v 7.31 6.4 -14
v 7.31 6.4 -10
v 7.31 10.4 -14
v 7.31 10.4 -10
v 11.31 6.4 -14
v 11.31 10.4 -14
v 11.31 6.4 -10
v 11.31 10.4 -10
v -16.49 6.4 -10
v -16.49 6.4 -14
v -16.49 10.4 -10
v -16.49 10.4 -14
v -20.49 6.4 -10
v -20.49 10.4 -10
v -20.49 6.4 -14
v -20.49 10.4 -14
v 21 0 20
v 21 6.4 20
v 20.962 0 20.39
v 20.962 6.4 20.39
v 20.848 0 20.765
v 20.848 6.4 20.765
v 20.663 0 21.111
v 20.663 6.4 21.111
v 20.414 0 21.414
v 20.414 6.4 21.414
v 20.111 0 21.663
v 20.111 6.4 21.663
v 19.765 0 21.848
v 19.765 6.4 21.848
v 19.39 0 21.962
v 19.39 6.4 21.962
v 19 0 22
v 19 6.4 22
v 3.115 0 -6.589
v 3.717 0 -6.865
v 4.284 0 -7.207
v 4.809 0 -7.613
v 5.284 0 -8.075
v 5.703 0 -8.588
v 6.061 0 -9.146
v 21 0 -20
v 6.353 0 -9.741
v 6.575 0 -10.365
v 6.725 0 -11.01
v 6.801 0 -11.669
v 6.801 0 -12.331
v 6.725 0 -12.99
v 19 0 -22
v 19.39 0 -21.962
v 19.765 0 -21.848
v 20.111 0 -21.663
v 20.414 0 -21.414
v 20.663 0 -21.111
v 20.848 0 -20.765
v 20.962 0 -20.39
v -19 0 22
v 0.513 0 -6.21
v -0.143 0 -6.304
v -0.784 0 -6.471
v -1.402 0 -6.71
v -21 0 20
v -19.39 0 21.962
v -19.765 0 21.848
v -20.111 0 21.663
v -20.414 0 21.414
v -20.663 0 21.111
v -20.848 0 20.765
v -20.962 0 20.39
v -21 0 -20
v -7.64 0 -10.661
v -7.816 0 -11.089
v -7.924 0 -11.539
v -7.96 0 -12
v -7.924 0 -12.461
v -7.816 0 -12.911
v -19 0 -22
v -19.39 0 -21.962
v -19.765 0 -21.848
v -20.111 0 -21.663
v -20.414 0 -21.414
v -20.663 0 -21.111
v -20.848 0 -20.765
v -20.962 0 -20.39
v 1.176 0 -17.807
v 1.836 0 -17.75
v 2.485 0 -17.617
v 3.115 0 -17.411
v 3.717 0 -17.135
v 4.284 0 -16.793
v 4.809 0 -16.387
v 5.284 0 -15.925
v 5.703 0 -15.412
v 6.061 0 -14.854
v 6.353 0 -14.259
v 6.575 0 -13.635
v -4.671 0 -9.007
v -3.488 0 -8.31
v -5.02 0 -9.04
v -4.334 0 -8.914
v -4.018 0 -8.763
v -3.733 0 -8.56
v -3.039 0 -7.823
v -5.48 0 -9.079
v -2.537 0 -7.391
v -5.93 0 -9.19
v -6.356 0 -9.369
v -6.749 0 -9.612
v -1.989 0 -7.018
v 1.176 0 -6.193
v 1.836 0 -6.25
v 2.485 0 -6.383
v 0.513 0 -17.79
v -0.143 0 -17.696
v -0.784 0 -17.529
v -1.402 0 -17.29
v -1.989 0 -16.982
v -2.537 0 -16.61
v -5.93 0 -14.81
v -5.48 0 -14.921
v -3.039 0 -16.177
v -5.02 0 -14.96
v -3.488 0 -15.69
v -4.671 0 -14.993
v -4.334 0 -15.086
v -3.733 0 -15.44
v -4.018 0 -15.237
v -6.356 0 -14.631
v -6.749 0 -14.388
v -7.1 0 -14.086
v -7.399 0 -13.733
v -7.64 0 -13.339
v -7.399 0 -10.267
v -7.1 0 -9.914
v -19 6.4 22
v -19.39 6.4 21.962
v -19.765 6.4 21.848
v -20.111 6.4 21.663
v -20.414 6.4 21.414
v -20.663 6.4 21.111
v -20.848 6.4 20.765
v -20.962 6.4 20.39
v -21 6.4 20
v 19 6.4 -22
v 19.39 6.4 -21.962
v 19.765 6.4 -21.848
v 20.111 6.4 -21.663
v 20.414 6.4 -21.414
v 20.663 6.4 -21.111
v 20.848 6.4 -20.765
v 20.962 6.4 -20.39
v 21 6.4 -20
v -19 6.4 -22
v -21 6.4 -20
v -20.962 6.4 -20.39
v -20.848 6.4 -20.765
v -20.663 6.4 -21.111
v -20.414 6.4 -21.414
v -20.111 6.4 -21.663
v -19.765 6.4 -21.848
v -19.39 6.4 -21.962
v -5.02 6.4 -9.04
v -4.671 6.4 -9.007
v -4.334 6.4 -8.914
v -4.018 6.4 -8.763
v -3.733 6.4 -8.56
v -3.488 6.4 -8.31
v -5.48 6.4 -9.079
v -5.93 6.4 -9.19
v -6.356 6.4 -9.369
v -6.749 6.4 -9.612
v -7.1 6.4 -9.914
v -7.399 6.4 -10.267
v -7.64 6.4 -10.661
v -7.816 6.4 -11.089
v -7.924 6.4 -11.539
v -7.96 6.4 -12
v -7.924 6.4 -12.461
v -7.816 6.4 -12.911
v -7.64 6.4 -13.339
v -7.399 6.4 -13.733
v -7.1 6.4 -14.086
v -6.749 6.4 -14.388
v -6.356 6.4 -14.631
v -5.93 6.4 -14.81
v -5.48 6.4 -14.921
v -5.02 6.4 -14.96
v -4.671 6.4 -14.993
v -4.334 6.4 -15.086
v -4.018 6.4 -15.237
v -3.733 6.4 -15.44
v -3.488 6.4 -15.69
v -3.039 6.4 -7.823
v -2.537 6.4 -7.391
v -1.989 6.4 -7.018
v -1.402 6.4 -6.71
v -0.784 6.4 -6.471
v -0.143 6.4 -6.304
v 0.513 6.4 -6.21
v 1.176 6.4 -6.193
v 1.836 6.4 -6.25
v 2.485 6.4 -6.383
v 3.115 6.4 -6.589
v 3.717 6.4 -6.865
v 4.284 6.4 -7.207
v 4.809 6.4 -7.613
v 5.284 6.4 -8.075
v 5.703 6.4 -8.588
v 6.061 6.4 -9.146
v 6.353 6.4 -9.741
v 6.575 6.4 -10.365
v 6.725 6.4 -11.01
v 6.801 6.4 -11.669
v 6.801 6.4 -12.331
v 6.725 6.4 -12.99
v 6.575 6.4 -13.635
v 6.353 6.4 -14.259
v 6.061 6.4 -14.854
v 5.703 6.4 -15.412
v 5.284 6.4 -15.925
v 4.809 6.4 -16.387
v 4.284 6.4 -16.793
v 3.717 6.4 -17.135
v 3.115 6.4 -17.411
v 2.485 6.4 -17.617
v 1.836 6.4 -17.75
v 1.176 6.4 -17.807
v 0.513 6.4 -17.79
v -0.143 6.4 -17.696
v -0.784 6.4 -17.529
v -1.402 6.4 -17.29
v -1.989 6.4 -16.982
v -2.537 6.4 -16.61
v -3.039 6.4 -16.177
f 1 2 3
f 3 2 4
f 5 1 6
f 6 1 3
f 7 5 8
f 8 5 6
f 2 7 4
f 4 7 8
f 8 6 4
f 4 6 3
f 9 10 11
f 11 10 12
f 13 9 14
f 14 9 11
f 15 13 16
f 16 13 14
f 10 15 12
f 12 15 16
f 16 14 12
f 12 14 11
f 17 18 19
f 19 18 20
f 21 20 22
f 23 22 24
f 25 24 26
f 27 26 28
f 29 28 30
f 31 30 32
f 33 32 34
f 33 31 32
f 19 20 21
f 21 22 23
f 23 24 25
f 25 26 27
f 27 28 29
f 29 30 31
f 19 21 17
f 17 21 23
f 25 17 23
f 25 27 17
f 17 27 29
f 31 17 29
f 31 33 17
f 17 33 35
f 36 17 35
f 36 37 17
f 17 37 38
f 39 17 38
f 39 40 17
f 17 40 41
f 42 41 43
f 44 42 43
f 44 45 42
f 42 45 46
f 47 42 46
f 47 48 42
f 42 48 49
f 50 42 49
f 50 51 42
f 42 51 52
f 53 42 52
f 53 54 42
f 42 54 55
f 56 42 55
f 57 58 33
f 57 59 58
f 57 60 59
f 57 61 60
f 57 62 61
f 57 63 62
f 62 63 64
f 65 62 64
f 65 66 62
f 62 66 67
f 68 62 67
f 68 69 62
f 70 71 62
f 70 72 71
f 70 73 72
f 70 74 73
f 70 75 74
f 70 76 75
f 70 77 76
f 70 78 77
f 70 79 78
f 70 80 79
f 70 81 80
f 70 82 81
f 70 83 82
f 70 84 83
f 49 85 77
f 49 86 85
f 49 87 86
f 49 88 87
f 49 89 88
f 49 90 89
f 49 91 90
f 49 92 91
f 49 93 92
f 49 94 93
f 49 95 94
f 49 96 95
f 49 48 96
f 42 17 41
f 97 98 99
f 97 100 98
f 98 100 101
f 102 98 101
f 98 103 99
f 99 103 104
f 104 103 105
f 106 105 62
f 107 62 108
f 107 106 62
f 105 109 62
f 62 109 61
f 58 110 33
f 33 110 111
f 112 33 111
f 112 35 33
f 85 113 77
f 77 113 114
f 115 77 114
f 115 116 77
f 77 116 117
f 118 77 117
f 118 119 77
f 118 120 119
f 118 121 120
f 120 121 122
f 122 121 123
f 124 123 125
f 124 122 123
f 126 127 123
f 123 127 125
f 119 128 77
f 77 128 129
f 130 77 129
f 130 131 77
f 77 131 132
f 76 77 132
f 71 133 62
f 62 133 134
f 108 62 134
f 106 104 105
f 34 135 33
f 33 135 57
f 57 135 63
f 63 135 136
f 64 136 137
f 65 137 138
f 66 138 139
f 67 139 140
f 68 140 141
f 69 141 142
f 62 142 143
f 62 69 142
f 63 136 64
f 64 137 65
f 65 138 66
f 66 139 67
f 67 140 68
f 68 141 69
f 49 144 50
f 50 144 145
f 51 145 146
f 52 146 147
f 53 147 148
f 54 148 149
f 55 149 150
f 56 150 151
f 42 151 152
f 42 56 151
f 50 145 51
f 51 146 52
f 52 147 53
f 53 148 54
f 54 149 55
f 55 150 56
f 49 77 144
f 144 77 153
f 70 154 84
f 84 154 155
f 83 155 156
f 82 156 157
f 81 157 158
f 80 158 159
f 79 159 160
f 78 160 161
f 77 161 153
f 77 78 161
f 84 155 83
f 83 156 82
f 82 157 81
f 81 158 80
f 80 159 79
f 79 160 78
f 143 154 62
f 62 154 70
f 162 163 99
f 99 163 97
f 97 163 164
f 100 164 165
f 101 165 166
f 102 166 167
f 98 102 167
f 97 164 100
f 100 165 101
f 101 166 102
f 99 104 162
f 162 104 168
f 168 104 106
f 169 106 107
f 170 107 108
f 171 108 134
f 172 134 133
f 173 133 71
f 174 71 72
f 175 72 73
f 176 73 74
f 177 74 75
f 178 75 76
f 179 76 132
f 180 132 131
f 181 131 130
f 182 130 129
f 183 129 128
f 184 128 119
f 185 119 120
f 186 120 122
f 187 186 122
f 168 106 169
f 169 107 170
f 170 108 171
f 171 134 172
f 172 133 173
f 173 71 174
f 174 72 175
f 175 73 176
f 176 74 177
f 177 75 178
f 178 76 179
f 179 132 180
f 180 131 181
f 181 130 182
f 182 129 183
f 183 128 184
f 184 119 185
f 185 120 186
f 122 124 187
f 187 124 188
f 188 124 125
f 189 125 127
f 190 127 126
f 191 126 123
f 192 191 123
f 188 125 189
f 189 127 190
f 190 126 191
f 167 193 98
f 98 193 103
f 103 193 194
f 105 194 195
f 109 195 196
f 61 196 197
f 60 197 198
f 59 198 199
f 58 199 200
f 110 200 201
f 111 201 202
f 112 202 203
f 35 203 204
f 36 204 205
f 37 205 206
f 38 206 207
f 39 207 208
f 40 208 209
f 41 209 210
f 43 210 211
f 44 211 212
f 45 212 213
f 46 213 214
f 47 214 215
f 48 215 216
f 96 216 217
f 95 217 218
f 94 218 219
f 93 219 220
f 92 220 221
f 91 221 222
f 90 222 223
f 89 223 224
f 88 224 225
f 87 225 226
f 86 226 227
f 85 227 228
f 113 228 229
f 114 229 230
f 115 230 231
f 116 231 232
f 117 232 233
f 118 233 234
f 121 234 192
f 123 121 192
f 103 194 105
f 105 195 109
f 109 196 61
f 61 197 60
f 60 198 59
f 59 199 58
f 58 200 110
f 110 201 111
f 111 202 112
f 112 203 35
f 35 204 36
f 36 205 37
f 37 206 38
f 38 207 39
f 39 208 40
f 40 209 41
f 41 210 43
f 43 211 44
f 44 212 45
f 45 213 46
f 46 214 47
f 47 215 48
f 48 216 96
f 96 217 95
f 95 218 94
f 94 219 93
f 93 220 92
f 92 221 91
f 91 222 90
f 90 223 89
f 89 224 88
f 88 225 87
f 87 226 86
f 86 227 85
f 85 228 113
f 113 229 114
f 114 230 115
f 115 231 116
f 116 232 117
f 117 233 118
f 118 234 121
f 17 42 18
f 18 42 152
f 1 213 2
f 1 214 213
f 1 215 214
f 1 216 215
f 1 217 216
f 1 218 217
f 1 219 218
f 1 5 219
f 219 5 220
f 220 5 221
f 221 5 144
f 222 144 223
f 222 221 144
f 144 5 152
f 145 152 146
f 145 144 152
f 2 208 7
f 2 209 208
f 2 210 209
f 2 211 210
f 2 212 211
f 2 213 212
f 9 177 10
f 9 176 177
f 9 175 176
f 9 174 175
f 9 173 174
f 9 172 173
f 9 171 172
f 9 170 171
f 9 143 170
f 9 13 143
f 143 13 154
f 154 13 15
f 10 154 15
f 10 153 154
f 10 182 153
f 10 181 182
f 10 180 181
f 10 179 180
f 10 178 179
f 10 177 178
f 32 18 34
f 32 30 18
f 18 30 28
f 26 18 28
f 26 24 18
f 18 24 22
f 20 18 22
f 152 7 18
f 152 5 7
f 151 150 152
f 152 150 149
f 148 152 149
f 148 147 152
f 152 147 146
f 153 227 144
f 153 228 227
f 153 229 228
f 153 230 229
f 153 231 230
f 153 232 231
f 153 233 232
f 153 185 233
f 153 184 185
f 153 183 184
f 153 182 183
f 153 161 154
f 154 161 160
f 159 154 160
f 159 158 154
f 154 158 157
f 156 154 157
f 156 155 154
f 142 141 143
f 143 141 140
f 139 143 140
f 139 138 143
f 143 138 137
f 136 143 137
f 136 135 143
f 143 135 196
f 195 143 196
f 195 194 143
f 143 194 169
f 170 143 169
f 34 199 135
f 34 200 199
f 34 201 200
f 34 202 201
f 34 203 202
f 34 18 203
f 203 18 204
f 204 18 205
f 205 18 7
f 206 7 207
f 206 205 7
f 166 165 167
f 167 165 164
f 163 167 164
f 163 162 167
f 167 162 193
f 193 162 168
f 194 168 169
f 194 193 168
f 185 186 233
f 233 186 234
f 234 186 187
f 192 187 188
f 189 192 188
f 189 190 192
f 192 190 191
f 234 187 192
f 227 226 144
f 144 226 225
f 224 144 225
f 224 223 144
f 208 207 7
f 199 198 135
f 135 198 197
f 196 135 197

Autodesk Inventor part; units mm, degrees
ref_plane "YZ Plane" through (0, 0, 0) normal (1, 0, 0) x (0, 1, 0)
ref_plane "XZ Plane" through (0, 0, 0) normal (0, 1, 0) x (-1, 0, 0)
ref_plane "XY Plane" through (0, 0, 0) normal (0, 0, 1) x (1, 0, 0)
sketch "Sketch1" plane through (0, 0, 0) normal (0, 1, 0) x (-1, 0, 0)
  line L0 (-21, 22) -> (21, 22)
  line L1 (21, 22) -> (21, -22)
  line L2 (21, -22) -> (-21, -22)
  line L3 (-21, -22) -> (-21, 22)
  line L4 (-21, 22) -> (21, -22) construction
  line L5 (21, 22) -> (-21, -22) construction
  point P0 (0, 0)
  dimension "d0" = 42
  dimension "d1" = 44
extrude "wall2" add sketch "Sketch1" along normal blind 6.4
sketch "Sketch7" plane through (0, 6.4, 0) normal (0, 1, 0) x (1, 0, 0)
  line L0 (1, -22) -> (1, 22) construction
  line L1 (21, 22) -> (-21, 22) projected
  line L2 (-21, -22) -> (21, -22) projected
  line L3 (-21, 12) -> (21, 12) construction
  line L4 (21, -22) -> (21, 22) projected
  line L5 (-21, 22) -> (-21, -22) projected
  circle A0 centre (1, 12) radius 5.81
  point P0 (0, 0)
  dimension "d74" = 34
  dimension "d75" = 22
  dimension "d76" = 11.6
extrude "bigcircle" cut sketch "Sketch7" against normal blind 6.4 contours A0
sketch "Sketch8" plane through (0, 6.4, 0) normal (0, 1, 0) x (1, 0, 0)
  line L0 (-21, -22) -> (-21, 22) projected
  line L1 (-21, 12) -> (21, 12) construction
  line L2 (21, 22) -> (21, -22) projected
  line L3 (1, 22) -> (1, -22) construction
  line L4 (21, -22) -> (21, 22) projected
  line L5 (21, 22) -> (-21, 22) projected
  line L6 (-21, -22) -> (21, -22) projected
  circle A0 centre (-5, 12) radius 2.96
  point P0 (0, 0)
  dimension "d81" = 22
  dimension "d82" = 34
  dimension "d83" = 5.9
  dimension "d84" = 6
extrude "smallcircle" cut sketch "Sketch8" against normal blind 6.4 contours A0
fillet "Fillet4" radius 2 2 edges at (-4.0829, 3.2, -9.1857) (-4.0829, 3.2, -14.8143)
fillet_without_effect "Fillet5"
fillet "Fillet6" radius 2 1 edges at (-21, 3.2, -22)
fillet "Fillet7" radius 2 1 edges at (21, 3.2, -22)
fillet "Fillet8" radius 2 1 edges at (-21, 3.2, 22)
fillet "Fillet9" radius 2 1 edges at (21, 3.2, 22)
sketch "Sketch9" plane through (0, 6.4, 0) normal (0, 1, 0) x (1, 0, 0)
  line L0 (7.31, 17.1525) -> (7.31, -6.1616) construction
  line L1 (6.81, 14.2171) -> (6.81, 9.0836) construction
  arc A0 (-3.488, 8.3102) -> (-3.488, 15.6898) centre (1, 12) ccw projected
  line L2 (-21, 12) -> (14.6779, 12) construction
  line L3 (7.31, 10) -> (11.31, 10)
  line L4 (11.31, 10) -> (11.31, 14)
  line L5 (11.31, 14) -> (7.31, 14)
  line L6 (7.31, 14) -> (7.31, 10)
  line L7 (7.31, 10) -> (11.31, 14) construction
  line L8 (11.31, 10) -> (7.31, 14) construction
  line L9 (-21, 20) -> (-21, -20) projected
  line L10 (-20.49, 14) -> (-16.49, 14)
  line L11 (-16.49, 14) -> (-16.49, 10)
  line L12 (-16.49, 10) -> (-20.49, 10)
  line L13 (-20.49, 10) -> (-20.49, 14)
  line L14 (-20.49, 14) -> (-16.49, 10) construction
  line L15 (-16.49, 14) -> (-20.49, 10) construction
  point P0 (0, 0)
  point P1 (9.31, 12)
  point P2 (-18.49, 12)
  dimension "d93" = 0.5
  dimension "d94" = 4
  dimension "d95" = 23.3
extrude "Extrusion7" add sketch "Sketch9" along normal blind 4
equation "\"d0\" = wallw"
equation "\"d1\" = wallh"
equation "\"d72\" = wall2_thick"
equation "\"d74\" = distancefrombottom"
equation "\"d75\" = distancefromleft"
equation "\"d76\" = servobigcircledia"
equation "\"d79\" = wall2_thick"
equation "\"d81\" = distancefromleft"
equation "\"d82\" = distancefrombottom"
equation "\"d83\" = servosmallcircledia"
equation "\"d85\" = wall2_thick"
equation "\"d89\" = cornerrad"
equation "\"d90\" = cornerrad"
equation "\"d91\" = cornerrad"
equation "\"d92\" = cornerrad"
equation "\"d94\" = servomountsquare"
equation "\"d96\" = servomounth"
equation "\"printer3dtolerance\" = 0.1"
equation "\"wallw\" = 42"
equation "\"wallh\" = 44"
equation "\"cornerrad\" = 2"
equation "\"baseextra\" = 2"
equation "\"wall1_thick\" = 8"
equation "\"wall2_thick\" = 6.4"
equation "\"wall3_thick\" = 4"
equation "\"wall1slot\" = 8.1"
equation "\"wall2slot\" = 6.5"
equation "\"wall3slot\" = 4.1"
equation "\"gap2\" = 28"
equation "\"baseh\" = 79"
equation "\"basew\" = 44"
equation "\"base_thick\" = 6"
equation "\"base_slots_depth\" = 4"
equation "\"servomounth\" = 4"
equation "\"servosmallcircledia\" = 5.9"
equation "\"servomountsquare\" = 4"
equation "\"servobigcircledia\" = 11.6"
equation "\"servo9gw\" = 22.8"
equation "\"distancefromleft\" = 22"
equation "\"servopolygonl\" = 5.9"
equation "\"servopolygonr\" = 6.1"
equation "\"distancefrombottom\" = 34"
equation "\"d49\" = distancefrombottom"
equation "\"adapterh\" = 16"
equation "\"wall3slotd\" = 2"
equation "\"adapterw\" = 32"
equation "\"wall3slotd_1\" = 2"
equation "\"wall3slotw\" = 36"
equation "\"armslotd\" = 2"
equation "\"armthick\" = 3"
equation "\"armw\" = 34"
equation "\"fanhb\" = 11"
equation "\"fanhs\" = 9.6"
equation "\"adapterwallthick\" = 6"
equation "\"adapterwallslotd\" = 2"
equation "\"armhornthick\" = 3"
equation "\"hornscrewholed\" = 2"
equation "\"hornscrewheadd\" = 3"
equation "\"hornthick\" = 1.5"
properties part number "wall-middle" material "Wood (Oak)"
